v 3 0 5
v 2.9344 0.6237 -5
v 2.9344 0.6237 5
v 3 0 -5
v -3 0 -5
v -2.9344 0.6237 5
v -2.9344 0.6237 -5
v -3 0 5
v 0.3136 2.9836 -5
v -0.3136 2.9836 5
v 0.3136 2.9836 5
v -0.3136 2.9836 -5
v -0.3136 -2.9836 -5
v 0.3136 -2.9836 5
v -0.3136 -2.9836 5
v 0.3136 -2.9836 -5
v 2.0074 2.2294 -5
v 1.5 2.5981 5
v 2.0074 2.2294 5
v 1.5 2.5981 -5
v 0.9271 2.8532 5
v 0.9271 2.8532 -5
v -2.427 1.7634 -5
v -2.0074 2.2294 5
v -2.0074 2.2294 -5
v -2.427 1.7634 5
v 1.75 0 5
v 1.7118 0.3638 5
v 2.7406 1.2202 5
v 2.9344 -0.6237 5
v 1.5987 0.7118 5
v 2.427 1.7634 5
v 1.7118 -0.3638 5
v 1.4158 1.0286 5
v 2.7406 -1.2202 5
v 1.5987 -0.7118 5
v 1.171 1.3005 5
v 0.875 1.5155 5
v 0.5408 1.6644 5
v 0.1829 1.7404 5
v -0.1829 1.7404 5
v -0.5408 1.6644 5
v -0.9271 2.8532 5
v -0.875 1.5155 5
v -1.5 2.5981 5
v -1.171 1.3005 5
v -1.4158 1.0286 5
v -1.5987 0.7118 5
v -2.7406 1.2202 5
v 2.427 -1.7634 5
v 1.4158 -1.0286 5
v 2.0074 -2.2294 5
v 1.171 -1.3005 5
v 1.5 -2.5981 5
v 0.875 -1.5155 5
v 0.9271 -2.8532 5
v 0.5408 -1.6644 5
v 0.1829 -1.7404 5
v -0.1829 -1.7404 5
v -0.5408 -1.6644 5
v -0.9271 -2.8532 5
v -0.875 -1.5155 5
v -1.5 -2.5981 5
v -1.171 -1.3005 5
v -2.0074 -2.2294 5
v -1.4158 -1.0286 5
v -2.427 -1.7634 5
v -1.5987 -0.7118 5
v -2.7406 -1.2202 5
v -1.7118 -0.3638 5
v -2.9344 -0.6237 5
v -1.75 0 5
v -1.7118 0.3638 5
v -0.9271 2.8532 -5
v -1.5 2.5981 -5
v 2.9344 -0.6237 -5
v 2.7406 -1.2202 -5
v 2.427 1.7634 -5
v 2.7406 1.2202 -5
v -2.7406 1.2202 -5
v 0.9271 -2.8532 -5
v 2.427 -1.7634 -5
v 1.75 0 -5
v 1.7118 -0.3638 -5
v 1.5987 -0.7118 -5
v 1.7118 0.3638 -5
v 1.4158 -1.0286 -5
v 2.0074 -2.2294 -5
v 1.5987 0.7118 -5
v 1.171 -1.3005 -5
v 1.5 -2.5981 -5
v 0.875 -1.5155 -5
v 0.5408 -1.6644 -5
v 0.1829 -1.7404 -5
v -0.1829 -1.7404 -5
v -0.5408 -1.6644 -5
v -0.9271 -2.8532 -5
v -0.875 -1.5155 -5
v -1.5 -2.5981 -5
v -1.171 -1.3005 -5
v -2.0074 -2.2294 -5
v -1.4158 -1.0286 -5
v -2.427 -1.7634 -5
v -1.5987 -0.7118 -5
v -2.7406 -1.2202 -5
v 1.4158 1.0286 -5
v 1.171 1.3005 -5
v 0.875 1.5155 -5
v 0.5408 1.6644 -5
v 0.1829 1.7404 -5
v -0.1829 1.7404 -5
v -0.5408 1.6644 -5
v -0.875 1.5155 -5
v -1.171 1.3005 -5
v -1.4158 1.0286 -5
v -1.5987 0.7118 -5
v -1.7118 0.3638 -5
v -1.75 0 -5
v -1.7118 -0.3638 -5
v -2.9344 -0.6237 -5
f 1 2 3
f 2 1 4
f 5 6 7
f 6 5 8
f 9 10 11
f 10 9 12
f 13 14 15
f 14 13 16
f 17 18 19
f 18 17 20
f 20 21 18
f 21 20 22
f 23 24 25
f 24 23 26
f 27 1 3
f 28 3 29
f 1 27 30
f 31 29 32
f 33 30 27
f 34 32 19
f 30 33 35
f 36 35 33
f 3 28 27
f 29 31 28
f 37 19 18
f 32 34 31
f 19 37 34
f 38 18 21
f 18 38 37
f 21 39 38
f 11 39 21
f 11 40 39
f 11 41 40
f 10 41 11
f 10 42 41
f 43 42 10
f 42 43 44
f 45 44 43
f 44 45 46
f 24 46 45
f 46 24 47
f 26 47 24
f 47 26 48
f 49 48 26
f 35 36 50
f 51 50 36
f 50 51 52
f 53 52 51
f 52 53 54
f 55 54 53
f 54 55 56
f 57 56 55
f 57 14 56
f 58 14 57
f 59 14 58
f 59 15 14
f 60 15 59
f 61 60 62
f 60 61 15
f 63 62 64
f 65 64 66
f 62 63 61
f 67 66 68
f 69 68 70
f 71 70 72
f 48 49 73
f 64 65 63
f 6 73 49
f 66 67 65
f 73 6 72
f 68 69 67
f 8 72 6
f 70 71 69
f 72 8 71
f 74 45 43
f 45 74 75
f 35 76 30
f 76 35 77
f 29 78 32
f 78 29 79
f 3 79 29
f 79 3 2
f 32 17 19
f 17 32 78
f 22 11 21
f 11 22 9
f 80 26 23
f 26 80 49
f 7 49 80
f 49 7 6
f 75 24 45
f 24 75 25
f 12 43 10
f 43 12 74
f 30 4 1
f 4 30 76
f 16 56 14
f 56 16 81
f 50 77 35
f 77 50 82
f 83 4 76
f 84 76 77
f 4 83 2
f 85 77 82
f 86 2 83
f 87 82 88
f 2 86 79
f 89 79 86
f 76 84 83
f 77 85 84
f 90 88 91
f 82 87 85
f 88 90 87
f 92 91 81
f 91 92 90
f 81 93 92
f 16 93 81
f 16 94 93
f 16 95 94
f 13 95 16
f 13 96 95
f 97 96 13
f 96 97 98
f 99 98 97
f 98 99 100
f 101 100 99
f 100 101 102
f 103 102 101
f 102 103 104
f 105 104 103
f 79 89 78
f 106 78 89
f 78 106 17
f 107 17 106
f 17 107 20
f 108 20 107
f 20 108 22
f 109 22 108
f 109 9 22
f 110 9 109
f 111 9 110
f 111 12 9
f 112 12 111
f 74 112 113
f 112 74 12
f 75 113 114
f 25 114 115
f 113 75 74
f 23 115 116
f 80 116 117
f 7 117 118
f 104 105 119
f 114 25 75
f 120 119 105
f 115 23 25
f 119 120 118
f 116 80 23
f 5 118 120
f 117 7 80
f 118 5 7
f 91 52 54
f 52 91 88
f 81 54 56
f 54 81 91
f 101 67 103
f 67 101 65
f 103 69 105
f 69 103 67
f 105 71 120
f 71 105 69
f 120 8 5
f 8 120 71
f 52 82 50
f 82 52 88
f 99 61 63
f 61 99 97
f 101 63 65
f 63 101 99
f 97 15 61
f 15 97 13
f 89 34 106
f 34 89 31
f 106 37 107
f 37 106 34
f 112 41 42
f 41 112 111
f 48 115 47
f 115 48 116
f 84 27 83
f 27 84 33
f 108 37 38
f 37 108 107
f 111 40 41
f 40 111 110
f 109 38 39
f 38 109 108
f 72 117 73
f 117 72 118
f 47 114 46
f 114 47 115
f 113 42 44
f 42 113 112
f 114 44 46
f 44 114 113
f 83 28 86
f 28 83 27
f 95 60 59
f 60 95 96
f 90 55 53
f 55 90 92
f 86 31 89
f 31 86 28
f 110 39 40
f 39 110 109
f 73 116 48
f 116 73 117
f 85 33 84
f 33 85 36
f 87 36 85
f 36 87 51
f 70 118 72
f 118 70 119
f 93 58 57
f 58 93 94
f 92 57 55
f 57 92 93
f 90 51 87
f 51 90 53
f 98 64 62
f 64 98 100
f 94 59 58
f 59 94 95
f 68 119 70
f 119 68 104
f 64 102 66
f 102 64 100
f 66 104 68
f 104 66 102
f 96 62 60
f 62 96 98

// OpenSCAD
difference(){
    cylinder(r=3, h=10, center=true, $fs=0.1);
    cylinder(r=1.75, h=10, center=true, $fs=0.1);
}
